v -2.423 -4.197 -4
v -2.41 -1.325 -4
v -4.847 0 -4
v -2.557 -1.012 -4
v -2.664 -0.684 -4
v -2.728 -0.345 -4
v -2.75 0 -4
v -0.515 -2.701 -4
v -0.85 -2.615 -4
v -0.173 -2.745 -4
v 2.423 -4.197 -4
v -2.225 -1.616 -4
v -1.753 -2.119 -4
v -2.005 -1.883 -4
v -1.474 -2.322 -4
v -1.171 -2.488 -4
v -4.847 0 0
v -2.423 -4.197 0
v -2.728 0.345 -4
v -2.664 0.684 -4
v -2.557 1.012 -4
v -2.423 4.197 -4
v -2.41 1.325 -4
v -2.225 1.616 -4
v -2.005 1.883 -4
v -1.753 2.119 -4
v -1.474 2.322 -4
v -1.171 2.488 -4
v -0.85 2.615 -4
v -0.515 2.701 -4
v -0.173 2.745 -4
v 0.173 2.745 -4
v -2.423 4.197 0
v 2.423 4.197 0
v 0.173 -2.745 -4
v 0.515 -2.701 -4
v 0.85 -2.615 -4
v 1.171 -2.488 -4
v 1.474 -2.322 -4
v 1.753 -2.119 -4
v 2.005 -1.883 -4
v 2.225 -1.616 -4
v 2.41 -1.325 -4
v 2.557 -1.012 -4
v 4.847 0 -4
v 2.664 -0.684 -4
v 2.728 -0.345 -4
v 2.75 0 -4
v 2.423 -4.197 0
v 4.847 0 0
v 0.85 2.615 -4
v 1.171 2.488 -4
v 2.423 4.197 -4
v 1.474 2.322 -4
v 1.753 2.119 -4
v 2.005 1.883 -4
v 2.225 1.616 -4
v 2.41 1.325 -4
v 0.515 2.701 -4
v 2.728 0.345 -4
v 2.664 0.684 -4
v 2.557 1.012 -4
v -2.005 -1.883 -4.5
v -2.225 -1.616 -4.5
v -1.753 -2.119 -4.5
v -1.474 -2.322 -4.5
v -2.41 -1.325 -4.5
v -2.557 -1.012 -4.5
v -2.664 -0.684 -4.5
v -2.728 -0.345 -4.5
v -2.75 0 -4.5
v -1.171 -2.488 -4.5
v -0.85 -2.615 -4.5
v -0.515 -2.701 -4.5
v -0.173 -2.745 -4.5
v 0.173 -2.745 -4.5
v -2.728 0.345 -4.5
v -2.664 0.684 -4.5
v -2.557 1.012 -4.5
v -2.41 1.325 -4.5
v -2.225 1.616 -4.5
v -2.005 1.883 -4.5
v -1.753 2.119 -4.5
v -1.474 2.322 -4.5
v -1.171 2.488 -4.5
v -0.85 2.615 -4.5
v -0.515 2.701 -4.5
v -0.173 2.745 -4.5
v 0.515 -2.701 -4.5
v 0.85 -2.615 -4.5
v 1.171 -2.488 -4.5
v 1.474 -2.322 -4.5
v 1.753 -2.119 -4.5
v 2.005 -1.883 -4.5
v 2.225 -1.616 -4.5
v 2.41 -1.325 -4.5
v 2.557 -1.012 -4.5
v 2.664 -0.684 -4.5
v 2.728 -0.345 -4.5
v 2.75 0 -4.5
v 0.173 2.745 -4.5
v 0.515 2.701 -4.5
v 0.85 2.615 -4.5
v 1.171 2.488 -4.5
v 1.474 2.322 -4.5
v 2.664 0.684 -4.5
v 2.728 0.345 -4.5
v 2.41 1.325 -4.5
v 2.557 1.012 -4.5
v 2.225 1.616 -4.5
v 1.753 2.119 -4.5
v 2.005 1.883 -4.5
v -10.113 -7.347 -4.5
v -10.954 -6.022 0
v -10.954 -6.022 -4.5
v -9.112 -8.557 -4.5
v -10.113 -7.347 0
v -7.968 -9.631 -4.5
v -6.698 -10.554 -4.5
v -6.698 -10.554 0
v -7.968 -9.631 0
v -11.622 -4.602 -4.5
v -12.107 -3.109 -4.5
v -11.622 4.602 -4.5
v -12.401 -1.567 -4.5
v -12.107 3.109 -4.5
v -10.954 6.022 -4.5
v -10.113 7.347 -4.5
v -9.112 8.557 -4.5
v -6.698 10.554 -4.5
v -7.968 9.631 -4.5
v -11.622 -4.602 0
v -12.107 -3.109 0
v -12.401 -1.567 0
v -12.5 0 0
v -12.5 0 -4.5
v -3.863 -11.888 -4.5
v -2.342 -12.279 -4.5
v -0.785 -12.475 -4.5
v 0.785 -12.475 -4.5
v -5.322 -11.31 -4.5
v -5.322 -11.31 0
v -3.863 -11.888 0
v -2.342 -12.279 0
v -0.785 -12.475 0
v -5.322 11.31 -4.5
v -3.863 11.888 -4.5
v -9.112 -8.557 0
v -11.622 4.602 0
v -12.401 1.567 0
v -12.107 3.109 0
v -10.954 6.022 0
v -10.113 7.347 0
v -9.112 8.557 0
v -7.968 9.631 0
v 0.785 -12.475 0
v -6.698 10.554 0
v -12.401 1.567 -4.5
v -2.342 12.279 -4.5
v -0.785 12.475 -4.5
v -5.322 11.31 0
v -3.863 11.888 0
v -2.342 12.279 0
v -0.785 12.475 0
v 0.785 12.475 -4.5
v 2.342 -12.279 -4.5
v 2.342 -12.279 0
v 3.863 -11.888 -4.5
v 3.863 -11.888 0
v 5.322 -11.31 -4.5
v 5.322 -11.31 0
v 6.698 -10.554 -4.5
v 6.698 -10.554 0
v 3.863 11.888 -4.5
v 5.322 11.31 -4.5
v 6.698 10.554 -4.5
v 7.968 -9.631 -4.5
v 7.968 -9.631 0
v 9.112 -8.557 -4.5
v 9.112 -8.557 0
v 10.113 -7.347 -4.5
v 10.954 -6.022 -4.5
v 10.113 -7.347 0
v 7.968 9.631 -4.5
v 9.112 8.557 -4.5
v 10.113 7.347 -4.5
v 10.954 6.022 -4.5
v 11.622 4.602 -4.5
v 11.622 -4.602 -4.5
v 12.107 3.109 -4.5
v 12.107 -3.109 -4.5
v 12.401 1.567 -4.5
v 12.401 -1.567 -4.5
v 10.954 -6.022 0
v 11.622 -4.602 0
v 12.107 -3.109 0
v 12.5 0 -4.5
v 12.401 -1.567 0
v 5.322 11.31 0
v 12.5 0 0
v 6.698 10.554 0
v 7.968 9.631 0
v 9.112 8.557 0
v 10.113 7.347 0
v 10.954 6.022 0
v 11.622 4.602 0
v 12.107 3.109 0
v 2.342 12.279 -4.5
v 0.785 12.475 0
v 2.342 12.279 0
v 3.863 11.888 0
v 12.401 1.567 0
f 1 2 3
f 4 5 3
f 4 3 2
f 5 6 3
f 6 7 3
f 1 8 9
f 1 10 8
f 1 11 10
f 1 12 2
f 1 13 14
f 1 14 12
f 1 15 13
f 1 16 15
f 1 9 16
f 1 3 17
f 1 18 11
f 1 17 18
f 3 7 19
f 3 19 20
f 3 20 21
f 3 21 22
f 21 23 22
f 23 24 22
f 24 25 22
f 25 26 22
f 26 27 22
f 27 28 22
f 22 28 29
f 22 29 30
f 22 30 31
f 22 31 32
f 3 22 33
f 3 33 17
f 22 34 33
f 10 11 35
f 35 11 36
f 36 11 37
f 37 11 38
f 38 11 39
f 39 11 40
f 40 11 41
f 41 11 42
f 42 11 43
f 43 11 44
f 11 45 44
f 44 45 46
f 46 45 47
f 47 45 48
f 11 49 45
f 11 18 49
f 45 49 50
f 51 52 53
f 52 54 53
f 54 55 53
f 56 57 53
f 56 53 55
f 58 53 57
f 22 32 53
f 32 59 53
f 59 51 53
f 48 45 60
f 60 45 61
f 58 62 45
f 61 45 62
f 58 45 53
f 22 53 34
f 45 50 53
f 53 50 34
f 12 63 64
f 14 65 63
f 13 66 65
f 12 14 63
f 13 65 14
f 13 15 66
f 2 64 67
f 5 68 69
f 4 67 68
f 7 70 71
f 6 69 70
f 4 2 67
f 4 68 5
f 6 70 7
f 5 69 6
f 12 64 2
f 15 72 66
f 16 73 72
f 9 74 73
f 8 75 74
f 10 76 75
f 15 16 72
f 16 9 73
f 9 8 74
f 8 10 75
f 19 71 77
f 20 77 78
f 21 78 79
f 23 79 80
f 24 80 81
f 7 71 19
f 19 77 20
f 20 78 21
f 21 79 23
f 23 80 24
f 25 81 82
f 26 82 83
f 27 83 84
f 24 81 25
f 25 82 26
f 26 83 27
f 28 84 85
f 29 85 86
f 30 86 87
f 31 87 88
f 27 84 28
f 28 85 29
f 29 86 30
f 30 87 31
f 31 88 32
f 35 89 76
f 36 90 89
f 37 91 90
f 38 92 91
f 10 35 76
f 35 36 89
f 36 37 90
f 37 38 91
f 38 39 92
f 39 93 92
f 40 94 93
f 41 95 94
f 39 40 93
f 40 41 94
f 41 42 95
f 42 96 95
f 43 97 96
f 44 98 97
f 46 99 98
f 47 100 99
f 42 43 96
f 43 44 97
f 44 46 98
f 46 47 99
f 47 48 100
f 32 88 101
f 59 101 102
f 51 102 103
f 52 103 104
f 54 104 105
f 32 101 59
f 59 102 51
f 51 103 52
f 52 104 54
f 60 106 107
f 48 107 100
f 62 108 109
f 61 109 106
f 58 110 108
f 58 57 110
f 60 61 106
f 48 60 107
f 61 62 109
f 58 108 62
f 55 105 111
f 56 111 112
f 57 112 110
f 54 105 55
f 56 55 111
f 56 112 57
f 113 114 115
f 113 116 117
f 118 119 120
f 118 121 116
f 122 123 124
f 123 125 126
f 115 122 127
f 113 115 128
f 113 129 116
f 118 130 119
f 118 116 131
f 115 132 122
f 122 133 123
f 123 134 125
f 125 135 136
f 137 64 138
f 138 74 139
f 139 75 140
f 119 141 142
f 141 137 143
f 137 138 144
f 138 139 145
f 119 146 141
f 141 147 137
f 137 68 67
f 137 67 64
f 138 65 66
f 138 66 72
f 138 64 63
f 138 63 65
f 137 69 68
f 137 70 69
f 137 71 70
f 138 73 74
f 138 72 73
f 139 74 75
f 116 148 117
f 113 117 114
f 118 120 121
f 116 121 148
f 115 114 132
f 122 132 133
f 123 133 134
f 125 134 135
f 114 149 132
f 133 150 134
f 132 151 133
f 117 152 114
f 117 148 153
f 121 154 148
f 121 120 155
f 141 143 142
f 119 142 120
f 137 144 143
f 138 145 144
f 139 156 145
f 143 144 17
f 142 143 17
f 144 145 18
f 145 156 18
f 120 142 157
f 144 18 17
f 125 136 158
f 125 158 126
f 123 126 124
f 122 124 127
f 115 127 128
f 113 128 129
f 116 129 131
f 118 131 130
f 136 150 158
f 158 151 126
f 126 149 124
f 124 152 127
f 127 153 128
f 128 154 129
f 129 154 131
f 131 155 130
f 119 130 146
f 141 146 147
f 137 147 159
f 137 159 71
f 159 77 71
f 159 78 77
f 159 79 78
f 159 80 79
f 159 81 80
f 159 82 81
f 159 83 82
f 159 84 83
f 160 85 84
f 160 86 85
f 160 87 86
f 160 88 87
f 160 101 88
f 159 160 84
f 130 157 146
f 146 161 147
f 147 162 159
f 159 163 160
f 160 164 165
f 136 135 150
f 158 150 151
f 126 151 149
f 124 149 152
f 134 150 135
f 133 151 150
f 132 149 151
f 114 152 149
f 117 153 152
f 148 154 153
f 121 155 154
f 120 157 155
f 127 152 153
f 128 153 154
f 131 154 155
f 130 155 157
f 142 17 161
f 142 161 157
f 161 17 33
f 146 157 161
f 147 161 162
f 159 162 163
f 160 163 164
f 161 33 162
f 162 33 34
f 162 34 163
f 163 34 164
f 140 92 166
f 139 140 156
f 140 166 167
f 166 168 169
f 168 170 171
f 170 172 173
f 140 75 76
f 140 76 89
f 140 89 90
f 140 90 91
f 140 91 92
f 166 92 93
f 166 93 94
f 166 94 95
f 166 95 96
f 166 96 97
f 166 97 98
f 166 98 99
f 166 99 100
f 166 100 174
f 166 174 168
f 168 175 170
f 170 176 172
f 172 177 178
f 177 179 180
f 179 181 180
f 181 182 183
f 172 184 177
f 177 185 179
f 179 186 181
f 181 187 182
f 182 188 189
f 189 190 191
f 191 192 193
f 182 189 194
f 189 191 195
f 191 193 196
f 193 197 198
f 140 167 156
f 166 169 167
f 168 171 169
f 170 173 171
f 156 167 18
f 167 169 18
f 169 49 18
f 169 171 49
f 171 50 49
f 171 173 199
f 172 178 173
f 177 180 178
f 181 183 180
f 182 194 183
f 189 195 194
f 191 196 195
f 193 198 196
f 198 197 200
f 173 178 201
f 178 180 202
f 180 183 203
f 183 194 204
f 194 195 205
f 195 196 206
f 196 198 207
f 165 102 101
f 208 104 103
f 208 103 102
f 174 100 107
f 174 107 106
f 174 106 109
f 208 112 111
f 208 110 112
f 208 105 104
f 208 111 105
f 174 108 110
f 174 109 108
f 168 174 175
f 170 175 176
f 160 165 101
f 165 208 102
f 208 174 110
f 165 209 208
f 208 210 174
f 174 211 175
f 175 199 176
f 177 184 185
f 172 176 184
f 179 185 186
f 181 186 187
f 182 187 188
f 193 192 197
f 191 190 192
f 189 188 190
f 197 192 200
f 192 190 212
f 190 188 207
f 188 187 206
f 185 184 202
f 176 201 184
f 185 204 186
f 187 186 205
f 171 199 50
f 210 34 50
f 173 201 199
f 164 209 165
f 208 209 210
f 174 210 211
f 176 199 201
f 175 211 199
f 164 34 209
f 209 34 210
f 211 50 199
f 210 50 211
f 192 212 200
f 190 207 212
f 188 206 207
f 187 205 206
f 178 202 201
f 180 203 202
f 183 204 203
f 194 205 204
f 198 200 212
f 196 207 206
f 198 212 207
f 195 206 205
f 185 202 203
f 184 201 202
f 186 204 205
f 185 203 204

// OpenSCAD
$fn = 50;

difference() {
	union() {
		translate(v = [0, 0, -4.5]) {
			cylinder(h = 4.5, r = 12.5);
		}
	}
	union() {
		translate(v = [0, 0, 0]) {
			rotate(a = [0, 0, 0]) {
				difference() {
					union() {
						translate(v = [0, 0, -4]) {
							linear_extrude(height = 4) {
								polygon(points = [[4.8468, 0.0], [2.4234000000000004, 4.197451927062417], [-2.423399999999999, 4.197451927062417], [-4.8468, 5.935618106107392e-16], [-2.423400000000002, -4.197451927062416], [2.423399999999997, -4.197451927062419]]);
							}
						}
					}
					union();
				}
			}
		}
		#translate(v = [0, 0, -100.0]) {
			cylinder(h = 200, r = 2.75);
		}
	}
}
